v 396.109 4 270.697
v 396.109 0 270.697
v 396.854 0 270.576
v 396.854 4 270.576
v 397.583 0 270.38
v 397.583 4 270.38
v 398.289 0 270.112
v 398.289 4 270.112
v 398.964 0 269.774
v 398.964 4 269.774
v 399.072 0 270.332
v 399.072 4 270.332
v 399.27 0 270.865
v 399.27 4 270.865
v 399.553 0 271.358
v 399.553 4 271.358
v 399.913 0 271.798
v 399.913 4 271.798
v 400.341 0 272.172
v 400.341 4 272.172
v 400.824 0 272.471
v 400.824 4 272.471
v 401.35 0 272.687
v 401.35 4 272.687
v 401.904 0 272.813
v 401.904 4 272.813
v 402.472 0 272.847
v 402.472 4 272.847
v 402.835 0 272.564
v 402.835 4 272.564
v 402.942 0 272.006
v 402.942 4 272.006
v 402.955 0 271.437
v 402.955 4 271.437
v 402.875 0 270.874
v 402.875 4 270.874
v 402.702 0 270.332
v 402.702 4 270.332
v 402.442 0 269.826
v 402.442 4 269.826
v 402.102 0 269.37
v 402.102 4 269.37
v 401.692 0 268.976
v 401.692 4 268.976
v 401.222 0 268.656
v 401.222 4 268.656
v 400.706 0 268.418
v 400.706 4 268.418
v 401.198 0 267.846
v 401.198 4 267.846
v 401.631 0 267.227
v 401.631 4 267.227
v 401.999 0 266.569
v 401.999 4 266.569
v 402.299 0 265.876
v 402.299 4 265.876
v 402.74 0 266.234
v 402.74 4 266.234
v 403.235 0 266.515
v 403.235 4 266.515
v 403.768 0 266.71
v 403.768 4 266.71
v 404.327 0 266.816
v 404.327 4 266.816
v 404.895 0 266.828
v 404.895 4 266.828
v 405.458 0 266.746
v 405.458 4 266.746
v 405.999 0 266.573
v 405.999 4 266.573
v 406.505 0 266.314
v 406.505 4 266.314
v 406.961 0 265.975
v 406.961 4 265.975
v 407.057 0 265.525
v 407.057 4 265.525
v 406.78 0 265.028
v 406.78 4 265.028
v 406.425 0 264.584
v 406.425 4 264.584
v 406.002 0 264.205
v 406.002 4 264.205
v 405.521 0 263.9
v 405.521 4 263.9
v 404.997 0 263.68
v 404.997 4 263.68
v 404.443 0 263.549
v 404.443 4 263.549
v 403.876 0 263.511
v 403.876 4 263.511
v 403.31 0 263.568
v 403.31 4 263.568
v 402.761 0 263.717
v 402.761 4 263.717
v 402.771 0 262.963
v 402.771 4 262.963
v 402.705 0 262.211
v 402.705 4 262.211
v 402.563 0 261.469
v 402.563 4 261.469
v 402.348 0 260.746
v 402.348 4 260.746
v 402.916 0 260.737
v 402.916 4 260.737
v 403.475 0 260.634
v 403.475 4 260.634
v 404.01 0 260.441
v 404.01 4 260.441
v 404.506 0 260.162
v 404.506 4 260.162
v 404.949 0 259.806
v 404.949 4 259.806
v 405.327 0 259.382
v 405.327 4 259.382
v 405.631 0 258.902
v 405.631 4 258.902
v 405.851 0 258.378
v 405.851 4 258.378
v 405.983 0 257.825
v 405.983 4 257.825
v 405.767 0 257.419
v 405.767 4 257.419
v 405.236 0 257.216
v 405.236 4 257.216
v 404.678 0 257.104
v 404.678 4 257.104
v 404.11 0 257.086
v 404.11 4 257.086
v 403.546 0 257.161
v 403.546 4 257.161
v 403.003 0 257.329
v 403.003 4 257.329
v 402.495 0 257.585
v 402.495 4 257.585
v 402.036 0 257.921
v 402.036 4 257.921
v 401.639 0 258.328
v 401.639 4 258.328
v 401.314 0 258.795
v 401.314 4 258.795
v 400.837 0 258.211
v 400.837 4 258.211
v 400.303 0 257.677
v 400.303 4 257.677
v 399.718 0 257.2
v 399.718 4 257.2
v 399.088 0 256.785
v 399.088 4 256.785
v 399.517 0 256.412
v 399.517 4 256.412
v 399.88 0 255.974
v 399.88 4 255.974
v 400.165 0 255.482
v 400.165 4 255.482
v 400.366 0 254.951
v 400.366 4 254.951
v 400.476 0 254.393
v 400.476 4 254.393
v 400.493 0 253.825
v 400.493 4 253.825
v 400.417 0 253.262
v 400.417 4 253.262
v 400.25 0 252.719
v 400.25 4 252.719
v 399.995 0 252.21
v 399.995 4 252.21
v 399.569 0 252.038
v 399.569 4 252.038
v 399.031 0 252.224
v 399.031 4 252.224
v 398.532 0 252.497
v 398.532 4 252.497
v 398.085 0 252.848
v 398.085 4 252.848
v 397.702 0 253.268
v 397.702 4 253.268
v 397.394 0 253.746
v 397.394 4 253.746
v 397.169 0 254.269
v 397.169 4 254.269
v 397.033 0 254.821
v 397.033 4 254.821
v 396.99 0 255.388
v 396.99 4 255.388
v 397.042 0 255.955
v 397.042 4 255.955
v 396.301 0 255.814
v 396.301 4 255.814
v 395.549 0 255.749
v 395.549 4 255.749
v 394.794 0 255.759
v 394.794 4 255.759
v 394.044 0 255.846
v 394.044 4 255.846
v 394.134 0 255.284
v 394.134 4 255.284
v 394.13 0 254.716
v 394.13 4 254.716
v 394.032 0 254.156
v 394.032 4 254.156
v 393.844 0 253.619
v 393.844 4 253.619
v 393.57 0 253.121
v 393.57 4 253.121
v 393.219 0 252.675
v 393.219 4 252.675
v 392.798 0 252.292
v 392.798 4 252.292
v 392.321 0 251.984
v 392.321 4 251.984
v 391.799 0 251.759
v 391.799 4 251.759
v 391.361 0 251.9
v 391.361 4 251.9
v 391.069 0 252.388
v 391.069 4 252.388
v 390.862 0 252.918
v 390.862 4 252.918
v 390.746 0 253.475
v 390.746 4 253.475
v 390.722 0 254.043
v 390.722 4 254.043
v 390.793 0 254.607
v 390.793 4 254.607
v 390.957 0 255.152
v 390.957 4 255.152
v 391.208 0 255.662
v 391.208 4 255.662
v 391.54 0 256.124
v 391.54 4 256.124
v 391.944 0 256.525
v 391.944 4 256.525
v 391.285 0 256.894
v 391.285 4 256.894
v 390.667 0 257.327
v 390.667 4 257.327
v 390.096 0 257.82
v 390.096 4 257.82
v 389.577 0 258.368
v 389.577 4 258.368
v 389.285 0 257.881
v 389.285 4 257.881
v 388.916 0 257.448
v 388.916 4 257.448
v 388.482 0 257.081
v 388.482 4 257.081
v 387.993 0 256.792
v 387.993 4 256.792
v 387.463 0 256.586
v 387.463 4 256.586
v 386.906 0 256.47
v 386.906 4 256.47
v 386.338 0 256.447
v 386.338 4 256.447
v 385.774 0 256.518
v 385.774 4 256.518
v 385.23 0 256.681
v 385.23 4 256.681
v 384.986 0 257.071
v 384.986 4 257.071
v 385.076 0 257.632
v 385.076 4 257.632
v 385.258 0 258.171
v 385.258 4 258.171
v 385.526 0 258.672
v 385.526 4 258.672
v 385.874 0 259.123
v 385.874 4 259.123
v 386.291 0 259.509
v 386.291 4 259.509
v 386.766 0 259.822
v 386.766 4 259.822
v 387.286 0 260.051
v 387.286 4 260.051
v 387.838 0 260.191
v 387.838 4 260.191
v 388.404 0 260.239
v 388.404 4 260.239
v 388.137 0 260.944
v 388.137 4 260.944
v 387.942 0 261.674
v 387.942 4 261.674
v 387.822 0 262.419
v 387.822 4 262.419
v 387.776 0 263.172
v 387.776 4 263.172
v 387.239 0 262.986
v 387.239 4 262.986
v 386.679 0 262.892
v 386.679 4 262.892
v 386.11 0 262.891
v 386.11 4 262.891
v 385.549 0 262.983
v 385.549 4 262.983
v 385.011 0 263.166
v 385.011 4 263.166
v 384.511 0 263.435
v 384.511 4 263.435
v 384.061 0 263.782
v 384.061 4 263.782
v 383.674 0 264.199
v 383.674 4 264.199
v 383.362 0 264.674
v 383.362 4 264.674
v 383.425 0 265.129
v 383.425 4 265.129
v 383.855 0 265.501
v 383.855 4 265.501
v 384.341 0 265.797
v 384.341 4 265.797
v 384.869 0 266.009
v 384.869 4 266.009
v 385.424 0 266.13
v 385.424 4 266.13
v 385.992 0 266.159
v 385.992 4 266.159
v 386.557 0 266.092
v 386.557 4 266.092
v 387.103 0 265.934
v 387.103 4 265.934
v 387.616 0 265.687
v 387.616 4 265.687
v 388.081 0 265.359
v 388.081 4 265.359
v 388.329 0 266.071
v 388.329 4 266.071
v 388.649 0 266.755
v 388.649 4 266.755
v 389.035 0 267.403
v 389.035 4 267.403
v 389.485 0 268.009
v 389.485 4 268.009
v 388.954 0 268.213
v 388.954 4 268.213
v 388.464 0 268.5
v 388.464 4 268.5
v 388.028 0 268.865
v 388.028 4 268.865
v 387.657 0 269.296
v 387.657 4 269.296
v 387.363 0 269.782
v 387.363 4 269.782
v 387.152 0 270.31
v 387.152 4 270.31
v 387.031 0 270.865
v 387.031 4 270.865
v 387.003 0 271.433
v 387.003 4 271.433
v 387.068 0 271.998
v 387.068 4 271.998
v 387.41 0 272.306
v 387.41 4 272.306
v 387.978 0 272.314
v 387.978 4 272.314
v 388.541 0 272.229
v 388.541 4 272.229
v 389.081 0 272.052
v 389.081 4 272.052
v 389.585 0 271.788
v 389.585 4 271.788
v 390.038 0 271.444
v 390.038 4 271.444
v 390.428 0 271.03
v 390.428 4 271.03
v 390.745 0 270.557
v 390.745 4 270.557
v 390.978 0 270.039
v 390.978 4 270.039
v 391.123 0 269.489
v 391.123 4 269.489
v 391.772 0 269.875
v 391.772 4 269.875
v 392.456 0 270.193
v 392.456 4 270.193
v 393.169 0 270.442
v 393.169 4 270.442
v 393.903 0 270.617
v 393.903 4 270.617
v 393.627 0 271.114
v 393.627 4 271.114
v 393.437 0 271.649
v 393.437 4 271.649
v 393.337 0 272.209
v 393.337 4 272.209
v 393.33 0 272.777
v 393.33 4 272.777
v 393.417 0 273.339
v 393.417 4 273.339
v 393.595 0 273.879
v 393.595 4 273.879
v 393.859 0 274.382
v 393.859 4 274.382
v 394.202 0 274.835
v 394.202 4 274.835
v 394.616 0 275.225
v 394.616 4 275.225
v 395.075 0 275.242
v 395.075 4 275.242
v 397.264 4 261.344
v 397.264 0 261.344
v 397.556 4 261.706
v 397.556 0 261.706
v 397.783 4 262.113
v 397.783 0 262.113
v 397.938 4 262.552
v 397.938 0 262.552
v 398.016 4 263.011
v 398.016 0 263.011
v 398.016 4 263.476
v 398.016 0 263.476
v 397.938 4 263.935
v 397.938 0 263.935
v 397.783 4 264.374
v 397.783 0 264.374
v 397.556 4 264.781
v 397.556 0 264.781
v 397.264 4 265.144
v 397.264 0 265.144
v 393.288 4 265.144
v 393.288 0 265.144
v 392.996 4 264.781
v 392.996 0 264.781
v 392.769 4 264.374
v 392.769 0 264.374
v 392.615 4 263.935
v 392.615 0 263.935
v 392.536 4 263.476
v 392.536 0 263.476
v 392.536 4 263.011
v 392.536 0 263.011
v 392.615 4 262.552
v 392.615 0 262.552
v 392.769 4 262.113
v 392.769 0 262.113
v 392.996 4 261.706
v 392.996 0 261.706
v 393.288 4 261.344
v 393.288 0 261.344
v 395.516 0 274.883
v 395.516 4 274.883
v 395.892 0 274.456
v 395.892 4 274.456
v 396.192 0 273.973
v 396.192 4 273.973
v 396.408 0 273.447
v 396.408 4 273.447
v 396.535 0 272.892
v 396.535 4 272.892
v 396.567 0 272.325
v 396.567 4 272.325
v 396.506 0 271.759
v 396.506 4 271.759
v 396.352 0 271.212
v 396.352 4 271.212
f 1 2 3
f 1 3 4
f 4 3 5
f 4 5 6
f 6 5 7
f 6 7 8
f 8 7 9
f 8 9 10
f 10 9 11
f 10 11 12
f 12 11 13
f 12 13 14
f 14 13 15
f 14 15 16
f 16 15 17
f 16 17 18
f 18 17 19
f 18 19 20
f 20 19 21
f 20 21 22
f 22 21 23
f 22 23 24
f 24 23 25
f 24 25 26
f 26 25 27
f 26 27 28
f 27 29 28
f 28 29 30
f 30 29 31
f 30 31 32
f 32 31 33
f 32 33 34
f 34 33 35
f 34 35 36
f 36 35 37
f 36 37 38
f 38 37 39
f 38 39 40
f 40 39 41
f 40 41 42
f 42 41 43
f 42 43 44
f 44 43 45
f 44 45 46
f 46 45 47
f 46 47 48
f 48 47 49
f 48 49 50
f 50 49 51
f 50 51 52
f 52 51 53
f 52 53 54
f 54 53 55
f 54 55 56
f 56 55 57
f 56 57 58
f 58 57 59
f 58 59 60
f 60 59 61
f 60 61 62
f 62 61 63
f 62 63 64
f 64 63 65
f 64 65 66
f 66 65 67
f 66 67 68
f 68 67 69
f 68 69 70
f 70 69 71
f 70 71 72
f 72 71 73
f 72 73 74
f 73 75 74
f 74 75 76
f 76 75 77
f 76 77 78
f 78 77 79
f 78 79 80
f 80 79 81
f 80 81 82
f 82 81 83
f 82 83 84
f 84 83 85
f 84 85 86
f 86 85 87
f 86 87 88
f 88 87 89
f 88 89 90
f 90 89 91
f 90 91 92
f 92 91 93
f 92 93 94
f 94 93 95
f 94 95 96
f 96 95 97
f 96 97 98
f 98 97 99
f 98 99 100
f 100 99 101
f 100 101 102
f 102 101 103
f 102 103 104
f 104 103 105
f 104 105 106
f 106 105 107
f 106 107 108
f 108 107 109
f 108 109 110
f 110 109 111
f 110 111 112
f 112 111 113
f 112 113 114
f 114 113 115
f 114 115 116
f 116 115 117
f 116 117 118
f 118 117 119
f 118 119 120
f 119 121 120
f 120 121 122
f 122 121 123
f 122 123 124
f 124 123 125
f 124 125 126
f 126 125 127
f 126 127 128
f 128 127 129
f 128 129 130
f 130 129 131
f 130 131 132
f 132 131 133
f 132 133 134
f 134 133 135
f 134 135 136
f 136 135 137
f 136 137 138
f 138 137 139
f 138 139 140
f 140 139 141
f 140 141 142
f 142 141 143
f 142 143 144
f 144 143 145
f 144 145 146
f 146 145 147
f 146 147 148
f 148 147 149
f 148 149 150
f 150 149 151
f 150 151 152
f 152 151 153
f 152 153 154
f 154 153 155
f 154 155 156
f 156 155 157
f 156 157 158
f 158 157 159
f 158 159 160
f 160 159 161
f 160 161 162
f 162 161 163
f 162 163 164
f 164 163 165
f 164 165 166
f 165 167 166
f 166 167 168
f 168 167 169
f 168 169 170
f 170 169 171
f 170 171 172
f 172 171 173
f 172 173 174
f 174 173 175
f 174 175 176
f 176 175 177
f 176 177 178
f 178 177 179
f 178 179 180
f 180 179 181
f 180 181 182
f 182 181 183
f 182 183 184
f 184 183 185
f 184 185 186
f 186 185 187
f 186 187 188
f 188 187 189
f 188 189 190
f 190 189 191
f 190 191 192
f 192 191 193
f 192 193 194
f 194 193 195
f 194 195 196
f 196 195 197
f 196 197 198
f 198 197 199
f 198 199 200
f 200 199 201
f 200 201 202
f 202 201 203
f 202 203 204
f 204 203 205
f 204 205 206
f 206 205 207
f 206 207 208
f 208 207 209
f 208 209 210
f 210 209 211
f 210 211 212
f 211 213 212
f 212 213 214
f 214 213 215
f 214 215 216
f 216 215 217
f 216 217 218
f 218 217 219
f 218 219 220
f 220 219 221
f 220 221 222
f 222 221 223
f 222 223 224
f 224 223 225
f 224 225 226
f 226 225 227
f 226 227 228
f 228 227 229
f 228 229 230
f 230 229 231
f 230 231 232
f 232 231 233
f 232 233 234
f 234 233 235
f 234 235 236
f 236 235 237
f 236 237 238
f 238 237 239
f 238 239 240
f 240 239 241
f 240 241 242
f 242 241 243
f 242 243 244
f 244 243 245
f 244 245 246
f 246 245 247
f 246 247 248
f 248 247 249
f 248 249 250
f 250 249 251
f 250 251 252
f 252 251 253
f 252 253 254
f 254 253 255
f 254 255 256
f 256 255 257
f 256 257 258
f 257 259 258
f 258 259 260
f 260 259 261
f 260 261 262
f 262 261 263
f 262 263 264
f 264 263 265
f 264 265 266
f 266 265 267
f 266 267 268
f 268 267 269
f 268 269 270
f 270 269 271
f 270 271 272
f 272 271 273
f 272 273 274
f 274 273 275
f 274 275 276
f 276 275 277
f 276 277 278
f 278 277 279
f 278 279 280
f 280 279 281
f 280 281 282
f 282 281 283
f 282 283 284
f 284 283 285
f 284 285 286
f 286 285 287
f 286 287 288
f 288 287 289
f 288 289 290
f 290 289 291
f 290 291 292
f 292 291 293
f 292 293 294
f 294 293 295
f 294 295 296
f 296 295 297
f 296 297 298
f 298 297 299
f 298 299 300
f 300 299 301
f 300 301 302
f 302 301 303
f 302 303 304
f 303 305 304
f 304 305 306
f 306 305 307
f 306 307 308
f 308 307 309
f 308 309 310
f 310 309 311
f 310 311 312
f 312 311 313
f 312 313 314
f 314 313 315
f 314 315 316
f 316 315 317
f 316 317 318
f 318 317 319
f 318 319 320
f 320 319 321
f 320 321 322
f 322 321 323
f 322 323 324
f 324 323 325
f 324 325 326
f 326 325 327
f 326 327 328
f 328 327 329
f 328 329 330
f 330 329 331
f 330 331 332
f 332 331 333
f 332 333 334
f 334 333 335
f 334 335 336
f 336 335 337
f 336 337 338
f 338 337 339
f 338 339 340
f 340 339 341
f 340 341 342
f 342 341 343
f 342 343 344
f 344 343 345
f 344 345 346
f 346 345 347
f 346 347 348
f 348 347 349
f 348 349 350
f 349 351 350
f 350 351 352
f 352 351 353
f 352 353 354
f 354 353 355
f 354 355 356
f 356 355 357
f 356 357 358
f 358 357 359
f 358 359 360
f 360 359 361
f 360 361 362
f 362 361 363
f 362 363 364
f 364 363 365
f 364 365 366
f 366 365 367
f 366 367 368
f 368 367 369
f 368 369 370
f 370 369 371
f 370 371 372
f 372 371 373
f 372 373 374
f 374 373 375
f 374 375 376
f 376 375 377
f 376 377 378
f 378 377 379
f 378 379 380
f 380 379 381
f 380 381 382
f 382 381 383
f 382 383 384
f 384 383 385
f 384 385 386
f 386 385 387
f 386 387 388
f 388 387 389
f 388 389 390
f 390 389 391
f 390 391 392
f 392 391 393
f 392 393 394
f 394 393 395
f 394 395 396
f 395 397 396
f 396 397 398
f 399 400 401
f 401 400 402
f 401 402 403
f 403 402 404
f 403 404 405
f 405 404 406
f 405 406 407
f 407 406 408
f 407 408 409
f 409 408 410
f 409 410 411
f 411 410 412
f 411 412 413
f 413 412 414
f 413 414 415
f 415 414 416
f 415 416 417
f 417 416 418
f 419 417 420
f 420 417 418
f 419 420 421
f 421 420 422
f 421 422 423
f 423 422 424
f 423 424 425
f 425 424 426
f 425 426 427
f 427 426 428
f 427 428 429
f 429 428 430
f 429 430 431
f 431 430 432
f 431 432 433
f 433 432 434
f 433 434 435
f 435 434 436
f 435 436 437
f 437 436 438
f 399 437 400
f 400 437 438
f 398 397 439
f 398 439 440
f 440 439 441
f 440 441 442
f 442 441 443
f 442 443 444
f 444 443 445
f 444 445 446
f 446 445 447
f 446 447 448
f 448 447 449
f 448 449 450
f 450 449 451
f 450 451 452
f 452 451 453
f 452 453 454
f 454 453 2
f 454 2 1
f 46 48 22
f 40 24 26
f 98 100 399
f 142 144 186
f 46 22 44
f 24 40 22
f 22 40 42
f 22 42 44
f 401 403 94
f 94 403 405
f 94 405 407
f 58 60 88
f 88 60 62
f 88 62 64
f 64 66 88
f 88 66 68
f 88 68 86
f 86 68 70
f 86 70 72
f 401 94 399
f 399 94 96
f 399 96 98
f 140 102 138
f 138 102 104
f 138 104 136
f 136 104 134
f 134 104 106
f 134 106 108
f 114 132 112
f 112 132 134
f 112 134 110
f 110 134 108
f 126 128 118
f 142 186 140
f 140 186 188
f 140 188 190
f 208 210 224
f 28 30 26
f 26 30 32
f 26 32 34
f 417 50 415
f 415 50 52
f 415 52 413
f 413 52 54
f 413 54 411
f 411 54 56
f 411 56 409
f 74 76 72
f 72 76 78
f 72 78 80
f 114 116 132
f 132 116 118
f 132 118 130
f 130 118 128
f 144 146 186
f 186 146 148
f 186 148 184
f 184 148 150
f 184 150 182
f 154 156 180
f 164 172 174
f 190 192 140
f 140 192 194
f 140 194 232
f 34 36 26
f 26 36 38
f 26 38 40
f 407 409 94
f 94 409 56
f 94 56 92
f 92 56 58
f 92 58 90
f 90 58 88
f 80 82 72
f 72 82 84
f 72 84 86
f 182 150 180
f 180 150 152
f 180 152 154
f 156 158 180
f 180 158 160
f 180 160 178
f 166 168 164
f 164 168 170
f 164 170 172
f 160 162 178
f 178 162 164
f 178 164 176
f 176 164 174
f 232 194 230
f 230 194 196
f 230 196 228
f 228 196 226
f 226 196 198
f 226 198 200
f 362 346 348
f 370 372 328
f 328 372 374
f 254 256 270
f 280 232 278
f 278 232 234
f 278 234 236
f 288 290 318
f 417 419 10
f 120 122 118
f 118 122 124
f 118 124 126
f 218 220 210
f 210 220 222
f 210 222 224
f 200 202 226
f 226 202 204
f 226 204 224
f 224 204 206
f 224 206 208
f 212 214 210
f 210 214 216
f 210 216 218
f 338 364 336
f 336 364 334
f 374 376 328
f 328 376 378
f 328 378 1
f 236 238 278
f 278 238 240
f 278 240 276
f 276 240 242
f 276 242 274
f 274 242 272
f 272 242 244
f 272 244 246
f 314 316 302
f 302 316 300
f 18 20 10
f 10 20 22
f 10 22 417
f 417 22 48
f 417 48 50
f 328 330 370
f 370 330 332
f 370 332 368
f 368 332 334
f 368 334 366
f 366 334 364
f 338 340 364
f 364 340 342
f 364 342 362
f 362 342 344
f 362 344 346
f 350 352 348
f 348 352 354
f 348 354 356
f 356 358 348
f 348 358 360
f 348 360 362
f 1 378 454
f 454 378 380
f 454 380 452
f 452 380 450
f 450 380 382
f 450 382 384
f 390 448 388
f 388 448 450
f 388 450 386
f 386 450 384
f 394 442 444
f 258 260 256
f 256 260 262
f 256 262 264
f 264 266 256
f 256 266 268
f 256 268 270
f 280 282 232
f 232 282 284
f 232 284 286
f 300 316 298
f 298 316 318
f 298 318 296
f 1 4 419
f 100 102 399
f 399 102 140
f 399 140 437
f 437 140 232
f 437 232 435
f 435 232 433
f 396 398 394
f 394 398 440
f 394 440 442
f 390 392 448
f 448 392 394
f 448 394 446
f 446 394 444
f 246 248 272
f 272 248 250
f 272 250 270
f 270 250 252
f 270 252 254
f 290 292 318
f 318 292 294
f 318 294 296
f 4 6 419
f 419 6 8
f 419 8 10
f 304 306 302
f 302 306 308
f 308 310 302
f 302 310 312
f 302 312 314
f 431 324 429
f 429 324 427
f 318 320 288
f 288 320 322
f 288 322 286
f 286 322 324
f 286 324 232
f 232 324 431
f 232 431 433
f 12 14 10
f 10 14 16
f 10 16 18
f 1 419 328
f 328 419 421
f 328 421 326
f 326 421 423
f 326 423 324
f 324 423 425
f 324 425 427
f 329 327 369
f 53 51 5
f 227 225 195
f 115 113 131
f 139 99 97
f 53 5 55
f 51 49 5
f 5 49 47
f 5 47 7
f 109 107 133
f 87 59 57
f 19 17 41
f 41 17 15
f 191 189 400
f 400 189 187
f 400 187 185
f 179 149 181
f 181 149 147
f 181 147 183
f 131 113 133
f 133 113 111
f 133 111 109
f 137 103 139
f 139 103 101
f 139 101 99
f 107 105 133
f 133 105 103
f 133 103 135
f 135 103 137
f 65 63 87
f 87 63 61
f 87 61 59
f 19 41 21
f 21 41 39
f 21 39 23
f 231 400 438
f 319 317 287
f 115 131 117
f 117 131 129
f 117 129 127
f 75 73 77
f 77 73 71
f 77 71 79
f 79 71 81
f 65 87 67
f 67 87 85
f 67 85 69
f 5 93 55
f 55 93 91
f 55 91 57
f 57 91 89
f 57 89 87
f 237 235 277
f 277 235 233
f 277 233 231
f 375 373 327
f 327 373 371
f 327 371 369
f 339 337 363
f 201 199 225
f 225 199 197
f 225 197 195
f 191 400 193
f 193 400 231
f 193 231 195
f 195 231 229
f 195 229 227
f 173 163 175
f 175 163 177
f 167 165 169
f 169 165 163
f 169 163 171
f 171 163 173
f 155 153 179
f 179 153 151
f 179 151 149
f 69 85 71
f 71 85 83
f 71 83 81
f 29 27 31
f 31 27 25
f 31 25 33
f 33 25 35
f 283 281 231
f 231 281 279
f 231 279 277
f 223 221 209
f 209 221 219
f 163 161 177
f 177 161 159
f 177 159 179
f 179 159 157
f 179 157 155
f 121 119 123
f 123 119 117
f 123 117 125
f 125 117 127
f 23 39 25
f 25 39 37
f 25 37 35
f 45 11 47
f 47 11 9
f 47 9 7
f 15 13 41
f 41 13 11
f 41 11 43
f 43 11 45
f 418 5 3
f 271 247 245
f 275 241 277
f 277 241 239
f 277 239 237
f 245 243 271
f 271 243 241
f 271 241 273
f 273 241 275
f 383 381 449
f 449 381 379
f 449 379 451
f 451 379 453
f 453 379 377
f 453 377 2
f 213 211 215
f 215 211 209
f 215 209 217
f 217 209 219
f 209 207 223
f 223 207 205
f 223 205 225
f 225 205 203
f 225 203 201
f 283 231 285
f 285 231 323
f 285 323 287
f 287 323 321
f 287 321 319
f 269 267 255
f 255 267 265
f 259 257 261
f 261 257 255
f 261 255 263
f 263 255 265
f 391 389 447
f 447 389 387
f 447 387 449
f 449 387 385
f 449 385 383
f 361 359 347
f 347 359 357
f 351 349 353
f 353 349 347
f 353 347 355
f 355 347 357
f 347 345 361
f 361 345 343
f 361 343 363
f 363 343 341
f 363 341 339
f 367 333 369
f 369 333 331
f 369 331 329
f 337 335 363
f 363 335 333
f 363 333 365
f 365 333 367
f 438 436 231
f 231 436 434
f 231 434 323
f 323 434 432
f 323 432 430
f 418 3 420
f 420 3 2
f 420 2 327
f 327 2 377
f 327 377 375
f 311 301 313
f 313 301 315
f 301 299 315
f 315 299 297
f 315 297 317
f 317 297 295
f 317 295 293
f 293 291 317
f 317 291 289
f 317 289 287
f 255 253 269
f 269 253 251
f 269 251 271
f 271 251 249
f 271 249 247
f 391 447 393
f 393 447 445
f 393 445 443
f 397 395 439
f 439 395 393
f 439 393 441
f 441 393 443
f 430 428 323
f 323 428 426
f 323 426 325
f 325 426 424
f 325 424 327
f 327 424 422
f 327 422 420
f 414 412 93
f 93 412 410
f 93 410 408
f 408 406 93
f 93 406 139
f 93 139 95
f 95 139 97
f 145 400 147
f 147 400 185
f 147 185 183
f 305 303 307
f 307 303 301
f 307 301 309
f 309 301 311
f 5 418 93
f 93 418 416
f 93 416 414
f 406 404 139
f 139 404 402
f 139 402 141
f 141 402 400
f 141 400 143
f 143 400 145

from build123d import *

# Parameters (mm, degrees)
SALIENTE_EXTRUIR1_DEPTH = 4


with BuildPart() as part:
    # Croquis3 → Saliente-Extruir1 (new body)
    with BuildSketch(Plane(origin=(0, 0, 0), x_dir=(1, 0, 0), z_dir=(0, 1, 0))):
        with BuildLine():
            ThreePointArc((402.347998687, -260.746007142), (404.734398392, -259.99334246), (405.982912796, -257.824790071))
            ThreePointArc((405.982912796, -257.824790071), (405.877105548, -257.620612188), (405.7674051, -257.418499365))
            ThreePointArc((405.7674051, -257.418499365), (403.271107475, -257.23416883), (401.314373797, -258.795153423))
            ThreePointArc((401.314373797, -258.795153423), (400.302743654, -257.677442632), (399.088021884, -256.784624632))
            ThreePointArc((399.088021884, -256.784624632), (400.432306585, -254.674101872), (399.9948055, -252.210364776))
            ThreePointArc((399.9948055, -252.210364776), (399.782509433, -252.121967031), (399.568558396, -252.037653715))
            ThreePointArc((399.568558396, -252.037653715), (397.537798087, -253.501037517), (397.042234682, -255.954585253))
            ThreePointArc((397.042234682, -255.954585253), (395.548830385, -255.748632435), (394.044407175, -255.845502269))
            ThreePointArc((394.044407175, -255.845502269), (393.71757112, -253.364658487), (391.798766166, -251.758546653))
            ThreePointArc((391.798766166, -251.758546653), (391.579316968, -251.827291333), (391.36122541, -251.900228661))
            ThreePointArc((391.36122541, -251.900228661), (390.746217737, -254.326593255), (391.943704228, -256.524661881))
            ThreePointArc((391.943704228, -256.524661881), (390.667306245, -257.326834648), (389.577117935, -258.368065845))
            ThreePointArc((389.577117935, -258.368065845), (387.732091346, -256.677715418), (385.229812687, -256.680746422))
            ThreePointArc((385.229812687, -256.680746422), (385.105893077, -256.874467128), (384.985708462, -257.070526914))
            ThreePointArc((384.985708462, -257.070526914), (386.074222349, -259.324549341), (388.404441499, -260.238638117))
            ThreePointArc((388.404441499, -260.238638117), (387.942290632, -261.673590916), (387.776448448, -263.171979827))
            ThreePointArc((387.776448448, -263.171979827), (385.276539772, -263.063056507), (383.361631401, -264.673812109))
            ThreePointArc((383.361631401, -264.673812109), (383.391224742, -264.901864769), (383.425182787, -265.12930846))
            ThreePointArc((383.425182787, -265.12930846), (385.707890489, -266.156306575), (388.080506861, -265.358703205))
            ThreePointArc((388.080506861, -265.358703205), (388.648848637, -266.755005674), (389.484951979, -268.009439474))
            ThreePointArc((389.484951979, -268.009439474), (387.499896269, -269.532909692), (387.068365096, -271.997699444))
            ThreePointArc((387.068365096, -271.997699444), (387.237624334, -272.153375684), (387.409835692, -272.305779849))
            ThreePointArc((387.409835692, -272.305779849), (389.818632906, -271.625209821), (391.123472929, -269.489121785))
            ThreePointArc((391.123472929, -269.489121785), (392.456373915, -270.193428481), (393.903200739, -270.616943654))
            ThreePointArc((393.903200739, -270.616943654), (393.361827622, -273.059958764), (394.615591878, -275.225480148))
            ThreePointArc((394.615591878, -275.225480148), (394.845318735, -275.235937326), (395.075203798, -275.241990362))
            ThreePointArc((395.075203798, -275.241990362), (396.482987537, -273.172298471), (396.109502064, -270.697225101))
            ThreePointArc((396.109502064, -270.697225101), (397.583283074, -270.379983093), (398.963847028, -269.774412182))
            ThreePointArc((398.963847028, -269.774412182), (400.119471003, -271.993858263), (402.471880459, -272.846839757))
            ThreePointArc((402.471880459, -272.846839757), (402.654583186, -272.707184842), (402.834576178, -272.564054467))
            ThreePointArc((402.834576178, -272.564054467), (402.582628784, -270.07367255), (400.705575818, -268.417728184))
            ThreePointArc((400.705575818, -268.417728184), (401.630638339, -267.227378533), (402.298958206, -265.876074898))
            ThreePointArc((402.298958206, -265.876074898), (404.610849972, -266.833448463), (406.961186099, -265.974770545))
            ThreePointArc((406.961186099, -265.974770545), (407.011376059, -265.750349625), (407.057256258, -265.525008131))
            ThreePointArc((407.057256258, -265.525008131), (405.263466718, -263.779213565), (402.761140203, -263.717232975))
            ThreePointArc((402.761140203, -263.717232975), (402.7046372, -262.210753513), (402.347998687, -260.746007142))
        make_face()
        with BuildLine():
            Line((397.264195322, -265.143672214), (393.288016252, -265.143672214))
            ThreePointArc((393.288016252, -265.143672214), (392.526105787, -263.243672214), (393.288016252, -261.343672214))
            Line((393.288016252, -261.343672214), (397.264195322, -261.343672214))
            ThreePointArc((397.264195322, -261.343672214), (398.026105787, -263.243672214), (397.264195322, -265.143672214))
        make_face(mode=Mode.SUBTRACT)
    extrude(amount=SALIENTE_EXTRUIR1_DEPTH)


solid = part.part
